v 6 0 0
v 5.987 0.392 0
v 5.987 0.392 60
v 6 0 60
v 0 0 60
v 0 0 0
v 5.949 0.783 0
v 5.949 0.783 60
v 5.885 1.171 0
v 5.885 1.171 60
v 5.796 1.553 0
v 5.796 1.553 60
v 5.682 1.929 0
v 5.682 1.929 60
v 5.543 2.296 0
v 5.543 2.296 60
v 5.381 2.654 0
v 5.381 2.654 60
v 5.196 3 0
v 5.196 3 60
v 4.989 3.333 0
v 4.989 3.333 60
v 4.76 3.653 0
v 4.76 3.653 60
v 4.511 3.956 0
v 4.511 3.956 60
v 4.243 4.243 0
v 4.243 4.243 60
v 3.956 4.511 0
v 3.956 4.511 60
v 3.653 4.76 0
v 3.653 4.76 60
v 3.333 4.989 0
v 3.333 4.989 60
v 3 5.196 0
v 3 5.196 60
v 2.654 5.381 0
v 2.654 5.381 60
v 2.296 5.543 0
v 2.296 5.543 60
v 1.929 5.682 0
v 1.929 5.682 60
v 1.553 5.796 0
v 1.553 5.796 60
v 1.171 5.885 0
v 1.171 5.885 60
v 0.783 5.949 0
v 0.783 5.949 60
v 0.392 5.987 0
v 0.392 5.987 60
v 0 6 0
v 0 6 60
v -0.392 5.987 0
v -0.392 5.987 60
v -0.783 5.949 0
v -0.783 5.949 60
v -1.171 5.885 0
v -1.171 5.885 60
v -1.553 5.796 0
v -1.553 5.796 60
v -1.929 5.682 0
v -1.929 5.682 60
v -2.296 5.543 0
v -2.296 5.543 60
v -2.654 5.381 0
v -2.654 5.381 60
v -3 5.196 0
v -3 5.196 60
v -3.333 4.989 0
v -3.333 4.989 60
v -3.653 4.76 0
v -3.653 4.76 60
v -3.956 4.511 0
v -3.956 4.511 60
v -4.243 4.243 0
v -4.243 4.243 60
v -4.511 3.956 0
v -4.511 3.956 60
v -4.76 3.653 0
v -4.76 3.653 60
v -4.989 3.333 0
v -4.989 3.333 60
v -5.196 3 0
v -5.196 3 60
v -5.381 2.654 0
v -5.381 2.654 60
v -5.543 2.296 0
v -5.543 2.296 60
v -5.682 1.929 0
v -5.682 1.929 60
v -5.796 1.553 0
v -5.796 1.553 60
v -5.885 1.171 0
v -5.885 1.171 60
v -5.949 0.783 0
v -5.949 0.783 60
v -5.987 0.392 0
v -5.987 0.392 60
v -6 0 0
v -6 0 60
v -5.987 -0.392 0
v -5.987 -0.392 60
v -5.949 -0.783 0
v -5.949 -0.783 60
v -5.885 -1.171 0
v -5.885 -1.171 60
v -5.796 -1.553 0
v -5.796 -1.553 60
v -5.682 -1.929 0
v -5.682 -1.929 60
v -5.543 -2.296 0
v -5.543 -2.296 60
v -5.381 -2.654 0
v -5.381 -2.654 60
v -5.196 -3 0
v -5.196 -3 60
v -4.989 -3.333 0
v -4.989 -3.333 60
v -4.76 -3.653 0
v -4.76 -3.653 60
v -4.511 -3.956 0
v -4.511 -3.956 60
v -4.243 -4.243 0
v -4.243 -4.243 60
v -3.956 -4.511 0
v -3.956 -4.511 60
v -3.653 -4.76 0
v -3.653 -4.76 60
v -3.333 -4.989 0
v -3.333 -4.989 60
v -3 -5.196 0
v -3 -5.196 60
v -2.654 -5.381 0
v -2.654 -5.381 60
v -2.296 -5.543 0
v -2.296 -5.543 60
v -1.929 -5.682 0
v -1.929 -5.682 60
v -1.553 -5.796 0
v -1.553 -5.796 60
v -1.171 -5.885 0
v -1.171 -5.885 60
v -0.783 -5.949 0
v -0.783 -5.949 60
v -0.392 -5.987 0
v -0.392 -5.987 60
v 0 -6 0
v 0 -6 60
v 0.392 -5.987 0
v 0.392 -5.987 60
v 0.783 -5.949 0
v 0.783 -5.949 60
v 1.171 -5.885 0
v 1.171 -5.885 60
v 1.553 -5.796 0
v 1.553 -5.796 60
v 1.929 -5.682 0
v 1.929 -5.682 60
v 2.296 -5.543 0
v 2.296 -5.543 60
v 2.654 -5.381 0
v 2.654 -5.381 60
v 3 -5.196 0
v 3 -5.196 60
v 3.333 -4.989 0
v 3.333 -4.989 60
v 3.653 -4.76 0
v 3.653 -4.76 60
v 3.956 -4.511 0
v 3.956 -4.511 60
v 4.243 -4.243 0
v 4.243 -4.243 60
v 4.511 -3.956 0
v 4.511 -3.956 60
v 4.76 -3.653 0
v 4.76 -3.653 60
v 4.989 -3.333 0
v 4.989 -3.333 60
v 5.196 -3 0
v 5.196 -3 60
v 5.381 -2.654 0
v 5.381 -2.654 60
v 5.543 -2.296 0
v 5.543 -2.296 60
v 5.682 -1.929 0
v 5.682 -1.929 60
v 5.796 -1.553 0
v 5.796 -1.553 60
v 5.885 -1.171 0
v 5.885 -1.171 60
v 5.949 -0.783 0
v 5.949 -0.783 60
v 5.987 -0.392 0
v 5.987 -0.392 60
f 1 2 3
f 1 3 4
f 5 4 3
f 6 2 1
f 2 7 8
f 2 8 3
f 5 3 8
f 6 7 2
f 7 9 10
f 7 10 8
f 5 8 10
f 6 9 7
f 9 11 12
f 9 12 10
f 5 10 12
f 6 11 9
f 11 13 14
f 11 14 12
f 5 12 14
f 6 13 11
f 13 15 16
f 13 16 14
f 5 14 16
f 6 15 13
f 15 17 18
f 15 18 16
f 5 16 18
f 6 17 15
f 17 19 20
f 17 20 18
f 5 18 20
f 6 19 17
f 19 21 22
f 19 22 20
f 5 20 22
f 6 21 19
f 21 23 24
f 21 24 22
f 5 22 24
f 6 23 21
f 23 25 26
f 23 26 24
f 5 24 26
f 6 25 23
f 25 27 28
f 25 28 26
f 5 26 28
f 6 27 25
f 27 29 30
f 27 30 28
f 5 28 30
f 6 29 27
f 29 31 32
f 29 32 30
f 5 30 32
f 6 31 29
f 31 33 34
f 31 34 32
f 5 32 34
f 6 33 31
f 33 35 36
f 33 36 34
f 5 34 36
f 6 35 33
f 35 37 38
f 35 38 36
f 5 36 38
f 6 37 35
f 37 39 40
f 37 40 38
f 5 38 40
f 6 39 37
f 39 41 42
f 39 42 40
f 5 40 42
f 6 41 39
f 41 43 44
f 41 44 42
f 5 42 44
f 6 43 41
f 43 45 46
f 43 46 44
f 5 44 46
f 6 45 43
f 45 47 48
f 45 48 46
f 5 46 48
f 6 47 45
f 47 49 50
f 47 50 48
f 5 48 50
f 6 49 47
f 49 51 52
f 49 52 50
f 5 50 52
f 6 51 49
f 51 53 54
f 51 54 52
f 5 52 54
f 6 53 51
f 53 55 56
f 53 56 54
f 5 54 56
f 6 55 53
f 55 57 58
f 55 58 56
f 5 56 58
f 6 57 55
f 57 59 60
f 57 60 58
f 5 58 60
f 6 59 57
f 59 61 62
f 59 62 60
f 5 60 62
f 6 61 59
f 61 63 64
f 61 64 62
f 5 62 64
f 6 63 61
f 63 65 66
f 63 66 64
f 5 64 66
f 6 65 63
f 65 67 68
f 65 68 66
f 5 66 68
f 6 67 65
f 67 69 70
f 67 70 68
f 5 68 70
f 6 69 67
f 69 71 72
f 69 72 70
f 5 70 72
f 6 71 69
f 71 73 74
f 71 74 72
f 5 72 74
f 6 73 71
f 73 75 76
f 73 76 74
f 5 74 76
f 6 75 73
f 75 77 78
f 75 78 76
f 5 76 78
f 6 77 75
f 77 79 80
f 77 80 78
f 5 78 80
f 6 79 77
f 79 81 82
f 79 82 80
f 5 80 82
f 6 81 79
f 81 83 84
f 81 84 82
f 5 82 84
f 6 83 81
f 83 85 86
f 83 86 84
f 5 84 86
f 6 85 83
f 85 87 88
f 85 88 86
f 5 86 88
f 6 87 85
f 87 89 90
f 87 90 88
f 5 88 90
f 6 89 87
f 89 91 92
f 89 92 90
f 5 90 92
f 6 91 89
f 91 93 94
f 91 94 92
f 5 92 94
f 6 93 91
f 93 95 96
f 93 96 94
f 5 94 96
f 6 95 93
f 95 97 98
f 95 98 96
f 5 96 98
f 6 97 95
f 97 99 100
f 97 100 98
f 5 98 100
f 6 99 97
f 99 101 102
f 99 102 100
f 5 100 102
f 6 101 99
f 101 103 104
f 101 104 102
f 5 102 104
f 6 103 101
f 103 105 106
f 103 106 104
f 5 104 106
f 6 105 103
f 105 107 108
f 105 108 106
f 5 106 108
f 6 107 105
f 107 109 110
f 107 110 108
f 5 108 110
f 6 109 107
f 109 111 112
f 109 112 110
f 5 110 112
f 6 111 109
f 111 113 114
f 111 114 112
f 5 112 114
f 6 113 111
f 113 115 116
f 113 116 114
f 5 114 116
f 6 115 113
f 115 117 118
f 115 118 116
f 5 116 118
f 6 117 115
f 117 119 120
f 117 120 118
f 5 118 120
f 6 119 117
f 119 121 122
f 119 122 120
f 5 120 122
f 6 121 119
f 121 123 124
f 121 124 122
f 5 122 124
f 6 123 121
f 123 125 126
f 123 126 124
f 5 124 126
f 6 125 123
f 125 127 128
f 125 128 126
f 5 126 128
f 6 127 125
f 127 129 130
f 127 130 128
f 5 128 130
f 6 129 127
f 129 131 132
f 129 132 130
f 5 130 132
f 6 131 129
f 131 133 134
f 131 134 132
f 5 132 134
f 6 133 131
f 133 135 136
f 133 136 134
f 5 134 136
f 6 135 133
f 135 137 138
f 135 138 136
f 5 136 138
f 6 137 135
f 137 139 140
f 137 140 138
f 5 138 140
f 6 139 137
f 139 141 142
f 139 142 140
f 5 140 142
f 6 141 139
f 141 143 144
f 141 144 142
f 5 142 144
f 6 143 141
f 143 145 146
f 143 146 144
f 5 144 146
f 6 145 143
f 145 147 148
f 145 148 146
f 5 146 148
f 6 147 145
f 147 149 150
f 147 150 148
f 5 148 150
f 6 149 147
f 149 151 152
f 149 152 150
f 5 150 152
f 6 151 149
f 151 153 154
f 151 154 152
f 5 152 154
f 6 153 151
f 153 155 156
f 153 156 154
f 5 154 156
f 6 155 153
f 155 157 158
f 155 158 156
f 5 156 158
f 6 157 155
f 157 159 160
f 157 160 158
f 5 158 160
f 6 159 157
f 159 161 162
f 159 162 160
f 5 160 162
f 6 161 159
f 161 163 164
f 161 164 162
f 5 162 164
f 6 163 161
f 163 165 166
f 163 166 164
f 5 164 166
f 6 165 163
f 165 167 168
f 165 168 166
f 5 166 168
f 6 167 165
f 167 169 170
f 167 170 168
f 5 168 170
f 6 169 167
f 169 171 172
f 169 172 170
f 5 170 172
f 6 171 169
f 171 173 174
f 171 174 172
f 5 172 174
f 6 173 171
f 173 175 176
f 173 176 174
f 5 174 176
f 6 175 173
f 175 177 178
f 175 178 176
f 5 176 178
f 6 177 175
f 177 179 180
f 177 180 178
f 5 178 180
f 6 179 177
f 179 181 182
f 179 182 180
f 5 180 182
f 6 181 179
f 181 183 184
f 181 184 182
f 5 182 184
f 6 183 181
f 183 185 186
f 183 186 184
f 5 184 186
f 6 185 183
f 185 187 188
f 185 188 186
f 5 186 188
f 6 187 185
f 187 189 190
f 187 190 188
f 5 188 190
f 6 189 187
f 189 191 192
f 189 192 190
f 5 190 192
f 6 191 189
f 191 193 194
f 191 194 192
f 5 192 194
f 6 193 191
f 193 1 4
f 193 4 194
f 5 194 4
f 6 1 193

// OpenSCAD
// Original MechIntel educational model. CC0-1.0. Units: mm.
// Not a standardized or load-rated component.
$fn=96;
diameter=12;
height=60;
cylinder(d=diameter,h=height);
